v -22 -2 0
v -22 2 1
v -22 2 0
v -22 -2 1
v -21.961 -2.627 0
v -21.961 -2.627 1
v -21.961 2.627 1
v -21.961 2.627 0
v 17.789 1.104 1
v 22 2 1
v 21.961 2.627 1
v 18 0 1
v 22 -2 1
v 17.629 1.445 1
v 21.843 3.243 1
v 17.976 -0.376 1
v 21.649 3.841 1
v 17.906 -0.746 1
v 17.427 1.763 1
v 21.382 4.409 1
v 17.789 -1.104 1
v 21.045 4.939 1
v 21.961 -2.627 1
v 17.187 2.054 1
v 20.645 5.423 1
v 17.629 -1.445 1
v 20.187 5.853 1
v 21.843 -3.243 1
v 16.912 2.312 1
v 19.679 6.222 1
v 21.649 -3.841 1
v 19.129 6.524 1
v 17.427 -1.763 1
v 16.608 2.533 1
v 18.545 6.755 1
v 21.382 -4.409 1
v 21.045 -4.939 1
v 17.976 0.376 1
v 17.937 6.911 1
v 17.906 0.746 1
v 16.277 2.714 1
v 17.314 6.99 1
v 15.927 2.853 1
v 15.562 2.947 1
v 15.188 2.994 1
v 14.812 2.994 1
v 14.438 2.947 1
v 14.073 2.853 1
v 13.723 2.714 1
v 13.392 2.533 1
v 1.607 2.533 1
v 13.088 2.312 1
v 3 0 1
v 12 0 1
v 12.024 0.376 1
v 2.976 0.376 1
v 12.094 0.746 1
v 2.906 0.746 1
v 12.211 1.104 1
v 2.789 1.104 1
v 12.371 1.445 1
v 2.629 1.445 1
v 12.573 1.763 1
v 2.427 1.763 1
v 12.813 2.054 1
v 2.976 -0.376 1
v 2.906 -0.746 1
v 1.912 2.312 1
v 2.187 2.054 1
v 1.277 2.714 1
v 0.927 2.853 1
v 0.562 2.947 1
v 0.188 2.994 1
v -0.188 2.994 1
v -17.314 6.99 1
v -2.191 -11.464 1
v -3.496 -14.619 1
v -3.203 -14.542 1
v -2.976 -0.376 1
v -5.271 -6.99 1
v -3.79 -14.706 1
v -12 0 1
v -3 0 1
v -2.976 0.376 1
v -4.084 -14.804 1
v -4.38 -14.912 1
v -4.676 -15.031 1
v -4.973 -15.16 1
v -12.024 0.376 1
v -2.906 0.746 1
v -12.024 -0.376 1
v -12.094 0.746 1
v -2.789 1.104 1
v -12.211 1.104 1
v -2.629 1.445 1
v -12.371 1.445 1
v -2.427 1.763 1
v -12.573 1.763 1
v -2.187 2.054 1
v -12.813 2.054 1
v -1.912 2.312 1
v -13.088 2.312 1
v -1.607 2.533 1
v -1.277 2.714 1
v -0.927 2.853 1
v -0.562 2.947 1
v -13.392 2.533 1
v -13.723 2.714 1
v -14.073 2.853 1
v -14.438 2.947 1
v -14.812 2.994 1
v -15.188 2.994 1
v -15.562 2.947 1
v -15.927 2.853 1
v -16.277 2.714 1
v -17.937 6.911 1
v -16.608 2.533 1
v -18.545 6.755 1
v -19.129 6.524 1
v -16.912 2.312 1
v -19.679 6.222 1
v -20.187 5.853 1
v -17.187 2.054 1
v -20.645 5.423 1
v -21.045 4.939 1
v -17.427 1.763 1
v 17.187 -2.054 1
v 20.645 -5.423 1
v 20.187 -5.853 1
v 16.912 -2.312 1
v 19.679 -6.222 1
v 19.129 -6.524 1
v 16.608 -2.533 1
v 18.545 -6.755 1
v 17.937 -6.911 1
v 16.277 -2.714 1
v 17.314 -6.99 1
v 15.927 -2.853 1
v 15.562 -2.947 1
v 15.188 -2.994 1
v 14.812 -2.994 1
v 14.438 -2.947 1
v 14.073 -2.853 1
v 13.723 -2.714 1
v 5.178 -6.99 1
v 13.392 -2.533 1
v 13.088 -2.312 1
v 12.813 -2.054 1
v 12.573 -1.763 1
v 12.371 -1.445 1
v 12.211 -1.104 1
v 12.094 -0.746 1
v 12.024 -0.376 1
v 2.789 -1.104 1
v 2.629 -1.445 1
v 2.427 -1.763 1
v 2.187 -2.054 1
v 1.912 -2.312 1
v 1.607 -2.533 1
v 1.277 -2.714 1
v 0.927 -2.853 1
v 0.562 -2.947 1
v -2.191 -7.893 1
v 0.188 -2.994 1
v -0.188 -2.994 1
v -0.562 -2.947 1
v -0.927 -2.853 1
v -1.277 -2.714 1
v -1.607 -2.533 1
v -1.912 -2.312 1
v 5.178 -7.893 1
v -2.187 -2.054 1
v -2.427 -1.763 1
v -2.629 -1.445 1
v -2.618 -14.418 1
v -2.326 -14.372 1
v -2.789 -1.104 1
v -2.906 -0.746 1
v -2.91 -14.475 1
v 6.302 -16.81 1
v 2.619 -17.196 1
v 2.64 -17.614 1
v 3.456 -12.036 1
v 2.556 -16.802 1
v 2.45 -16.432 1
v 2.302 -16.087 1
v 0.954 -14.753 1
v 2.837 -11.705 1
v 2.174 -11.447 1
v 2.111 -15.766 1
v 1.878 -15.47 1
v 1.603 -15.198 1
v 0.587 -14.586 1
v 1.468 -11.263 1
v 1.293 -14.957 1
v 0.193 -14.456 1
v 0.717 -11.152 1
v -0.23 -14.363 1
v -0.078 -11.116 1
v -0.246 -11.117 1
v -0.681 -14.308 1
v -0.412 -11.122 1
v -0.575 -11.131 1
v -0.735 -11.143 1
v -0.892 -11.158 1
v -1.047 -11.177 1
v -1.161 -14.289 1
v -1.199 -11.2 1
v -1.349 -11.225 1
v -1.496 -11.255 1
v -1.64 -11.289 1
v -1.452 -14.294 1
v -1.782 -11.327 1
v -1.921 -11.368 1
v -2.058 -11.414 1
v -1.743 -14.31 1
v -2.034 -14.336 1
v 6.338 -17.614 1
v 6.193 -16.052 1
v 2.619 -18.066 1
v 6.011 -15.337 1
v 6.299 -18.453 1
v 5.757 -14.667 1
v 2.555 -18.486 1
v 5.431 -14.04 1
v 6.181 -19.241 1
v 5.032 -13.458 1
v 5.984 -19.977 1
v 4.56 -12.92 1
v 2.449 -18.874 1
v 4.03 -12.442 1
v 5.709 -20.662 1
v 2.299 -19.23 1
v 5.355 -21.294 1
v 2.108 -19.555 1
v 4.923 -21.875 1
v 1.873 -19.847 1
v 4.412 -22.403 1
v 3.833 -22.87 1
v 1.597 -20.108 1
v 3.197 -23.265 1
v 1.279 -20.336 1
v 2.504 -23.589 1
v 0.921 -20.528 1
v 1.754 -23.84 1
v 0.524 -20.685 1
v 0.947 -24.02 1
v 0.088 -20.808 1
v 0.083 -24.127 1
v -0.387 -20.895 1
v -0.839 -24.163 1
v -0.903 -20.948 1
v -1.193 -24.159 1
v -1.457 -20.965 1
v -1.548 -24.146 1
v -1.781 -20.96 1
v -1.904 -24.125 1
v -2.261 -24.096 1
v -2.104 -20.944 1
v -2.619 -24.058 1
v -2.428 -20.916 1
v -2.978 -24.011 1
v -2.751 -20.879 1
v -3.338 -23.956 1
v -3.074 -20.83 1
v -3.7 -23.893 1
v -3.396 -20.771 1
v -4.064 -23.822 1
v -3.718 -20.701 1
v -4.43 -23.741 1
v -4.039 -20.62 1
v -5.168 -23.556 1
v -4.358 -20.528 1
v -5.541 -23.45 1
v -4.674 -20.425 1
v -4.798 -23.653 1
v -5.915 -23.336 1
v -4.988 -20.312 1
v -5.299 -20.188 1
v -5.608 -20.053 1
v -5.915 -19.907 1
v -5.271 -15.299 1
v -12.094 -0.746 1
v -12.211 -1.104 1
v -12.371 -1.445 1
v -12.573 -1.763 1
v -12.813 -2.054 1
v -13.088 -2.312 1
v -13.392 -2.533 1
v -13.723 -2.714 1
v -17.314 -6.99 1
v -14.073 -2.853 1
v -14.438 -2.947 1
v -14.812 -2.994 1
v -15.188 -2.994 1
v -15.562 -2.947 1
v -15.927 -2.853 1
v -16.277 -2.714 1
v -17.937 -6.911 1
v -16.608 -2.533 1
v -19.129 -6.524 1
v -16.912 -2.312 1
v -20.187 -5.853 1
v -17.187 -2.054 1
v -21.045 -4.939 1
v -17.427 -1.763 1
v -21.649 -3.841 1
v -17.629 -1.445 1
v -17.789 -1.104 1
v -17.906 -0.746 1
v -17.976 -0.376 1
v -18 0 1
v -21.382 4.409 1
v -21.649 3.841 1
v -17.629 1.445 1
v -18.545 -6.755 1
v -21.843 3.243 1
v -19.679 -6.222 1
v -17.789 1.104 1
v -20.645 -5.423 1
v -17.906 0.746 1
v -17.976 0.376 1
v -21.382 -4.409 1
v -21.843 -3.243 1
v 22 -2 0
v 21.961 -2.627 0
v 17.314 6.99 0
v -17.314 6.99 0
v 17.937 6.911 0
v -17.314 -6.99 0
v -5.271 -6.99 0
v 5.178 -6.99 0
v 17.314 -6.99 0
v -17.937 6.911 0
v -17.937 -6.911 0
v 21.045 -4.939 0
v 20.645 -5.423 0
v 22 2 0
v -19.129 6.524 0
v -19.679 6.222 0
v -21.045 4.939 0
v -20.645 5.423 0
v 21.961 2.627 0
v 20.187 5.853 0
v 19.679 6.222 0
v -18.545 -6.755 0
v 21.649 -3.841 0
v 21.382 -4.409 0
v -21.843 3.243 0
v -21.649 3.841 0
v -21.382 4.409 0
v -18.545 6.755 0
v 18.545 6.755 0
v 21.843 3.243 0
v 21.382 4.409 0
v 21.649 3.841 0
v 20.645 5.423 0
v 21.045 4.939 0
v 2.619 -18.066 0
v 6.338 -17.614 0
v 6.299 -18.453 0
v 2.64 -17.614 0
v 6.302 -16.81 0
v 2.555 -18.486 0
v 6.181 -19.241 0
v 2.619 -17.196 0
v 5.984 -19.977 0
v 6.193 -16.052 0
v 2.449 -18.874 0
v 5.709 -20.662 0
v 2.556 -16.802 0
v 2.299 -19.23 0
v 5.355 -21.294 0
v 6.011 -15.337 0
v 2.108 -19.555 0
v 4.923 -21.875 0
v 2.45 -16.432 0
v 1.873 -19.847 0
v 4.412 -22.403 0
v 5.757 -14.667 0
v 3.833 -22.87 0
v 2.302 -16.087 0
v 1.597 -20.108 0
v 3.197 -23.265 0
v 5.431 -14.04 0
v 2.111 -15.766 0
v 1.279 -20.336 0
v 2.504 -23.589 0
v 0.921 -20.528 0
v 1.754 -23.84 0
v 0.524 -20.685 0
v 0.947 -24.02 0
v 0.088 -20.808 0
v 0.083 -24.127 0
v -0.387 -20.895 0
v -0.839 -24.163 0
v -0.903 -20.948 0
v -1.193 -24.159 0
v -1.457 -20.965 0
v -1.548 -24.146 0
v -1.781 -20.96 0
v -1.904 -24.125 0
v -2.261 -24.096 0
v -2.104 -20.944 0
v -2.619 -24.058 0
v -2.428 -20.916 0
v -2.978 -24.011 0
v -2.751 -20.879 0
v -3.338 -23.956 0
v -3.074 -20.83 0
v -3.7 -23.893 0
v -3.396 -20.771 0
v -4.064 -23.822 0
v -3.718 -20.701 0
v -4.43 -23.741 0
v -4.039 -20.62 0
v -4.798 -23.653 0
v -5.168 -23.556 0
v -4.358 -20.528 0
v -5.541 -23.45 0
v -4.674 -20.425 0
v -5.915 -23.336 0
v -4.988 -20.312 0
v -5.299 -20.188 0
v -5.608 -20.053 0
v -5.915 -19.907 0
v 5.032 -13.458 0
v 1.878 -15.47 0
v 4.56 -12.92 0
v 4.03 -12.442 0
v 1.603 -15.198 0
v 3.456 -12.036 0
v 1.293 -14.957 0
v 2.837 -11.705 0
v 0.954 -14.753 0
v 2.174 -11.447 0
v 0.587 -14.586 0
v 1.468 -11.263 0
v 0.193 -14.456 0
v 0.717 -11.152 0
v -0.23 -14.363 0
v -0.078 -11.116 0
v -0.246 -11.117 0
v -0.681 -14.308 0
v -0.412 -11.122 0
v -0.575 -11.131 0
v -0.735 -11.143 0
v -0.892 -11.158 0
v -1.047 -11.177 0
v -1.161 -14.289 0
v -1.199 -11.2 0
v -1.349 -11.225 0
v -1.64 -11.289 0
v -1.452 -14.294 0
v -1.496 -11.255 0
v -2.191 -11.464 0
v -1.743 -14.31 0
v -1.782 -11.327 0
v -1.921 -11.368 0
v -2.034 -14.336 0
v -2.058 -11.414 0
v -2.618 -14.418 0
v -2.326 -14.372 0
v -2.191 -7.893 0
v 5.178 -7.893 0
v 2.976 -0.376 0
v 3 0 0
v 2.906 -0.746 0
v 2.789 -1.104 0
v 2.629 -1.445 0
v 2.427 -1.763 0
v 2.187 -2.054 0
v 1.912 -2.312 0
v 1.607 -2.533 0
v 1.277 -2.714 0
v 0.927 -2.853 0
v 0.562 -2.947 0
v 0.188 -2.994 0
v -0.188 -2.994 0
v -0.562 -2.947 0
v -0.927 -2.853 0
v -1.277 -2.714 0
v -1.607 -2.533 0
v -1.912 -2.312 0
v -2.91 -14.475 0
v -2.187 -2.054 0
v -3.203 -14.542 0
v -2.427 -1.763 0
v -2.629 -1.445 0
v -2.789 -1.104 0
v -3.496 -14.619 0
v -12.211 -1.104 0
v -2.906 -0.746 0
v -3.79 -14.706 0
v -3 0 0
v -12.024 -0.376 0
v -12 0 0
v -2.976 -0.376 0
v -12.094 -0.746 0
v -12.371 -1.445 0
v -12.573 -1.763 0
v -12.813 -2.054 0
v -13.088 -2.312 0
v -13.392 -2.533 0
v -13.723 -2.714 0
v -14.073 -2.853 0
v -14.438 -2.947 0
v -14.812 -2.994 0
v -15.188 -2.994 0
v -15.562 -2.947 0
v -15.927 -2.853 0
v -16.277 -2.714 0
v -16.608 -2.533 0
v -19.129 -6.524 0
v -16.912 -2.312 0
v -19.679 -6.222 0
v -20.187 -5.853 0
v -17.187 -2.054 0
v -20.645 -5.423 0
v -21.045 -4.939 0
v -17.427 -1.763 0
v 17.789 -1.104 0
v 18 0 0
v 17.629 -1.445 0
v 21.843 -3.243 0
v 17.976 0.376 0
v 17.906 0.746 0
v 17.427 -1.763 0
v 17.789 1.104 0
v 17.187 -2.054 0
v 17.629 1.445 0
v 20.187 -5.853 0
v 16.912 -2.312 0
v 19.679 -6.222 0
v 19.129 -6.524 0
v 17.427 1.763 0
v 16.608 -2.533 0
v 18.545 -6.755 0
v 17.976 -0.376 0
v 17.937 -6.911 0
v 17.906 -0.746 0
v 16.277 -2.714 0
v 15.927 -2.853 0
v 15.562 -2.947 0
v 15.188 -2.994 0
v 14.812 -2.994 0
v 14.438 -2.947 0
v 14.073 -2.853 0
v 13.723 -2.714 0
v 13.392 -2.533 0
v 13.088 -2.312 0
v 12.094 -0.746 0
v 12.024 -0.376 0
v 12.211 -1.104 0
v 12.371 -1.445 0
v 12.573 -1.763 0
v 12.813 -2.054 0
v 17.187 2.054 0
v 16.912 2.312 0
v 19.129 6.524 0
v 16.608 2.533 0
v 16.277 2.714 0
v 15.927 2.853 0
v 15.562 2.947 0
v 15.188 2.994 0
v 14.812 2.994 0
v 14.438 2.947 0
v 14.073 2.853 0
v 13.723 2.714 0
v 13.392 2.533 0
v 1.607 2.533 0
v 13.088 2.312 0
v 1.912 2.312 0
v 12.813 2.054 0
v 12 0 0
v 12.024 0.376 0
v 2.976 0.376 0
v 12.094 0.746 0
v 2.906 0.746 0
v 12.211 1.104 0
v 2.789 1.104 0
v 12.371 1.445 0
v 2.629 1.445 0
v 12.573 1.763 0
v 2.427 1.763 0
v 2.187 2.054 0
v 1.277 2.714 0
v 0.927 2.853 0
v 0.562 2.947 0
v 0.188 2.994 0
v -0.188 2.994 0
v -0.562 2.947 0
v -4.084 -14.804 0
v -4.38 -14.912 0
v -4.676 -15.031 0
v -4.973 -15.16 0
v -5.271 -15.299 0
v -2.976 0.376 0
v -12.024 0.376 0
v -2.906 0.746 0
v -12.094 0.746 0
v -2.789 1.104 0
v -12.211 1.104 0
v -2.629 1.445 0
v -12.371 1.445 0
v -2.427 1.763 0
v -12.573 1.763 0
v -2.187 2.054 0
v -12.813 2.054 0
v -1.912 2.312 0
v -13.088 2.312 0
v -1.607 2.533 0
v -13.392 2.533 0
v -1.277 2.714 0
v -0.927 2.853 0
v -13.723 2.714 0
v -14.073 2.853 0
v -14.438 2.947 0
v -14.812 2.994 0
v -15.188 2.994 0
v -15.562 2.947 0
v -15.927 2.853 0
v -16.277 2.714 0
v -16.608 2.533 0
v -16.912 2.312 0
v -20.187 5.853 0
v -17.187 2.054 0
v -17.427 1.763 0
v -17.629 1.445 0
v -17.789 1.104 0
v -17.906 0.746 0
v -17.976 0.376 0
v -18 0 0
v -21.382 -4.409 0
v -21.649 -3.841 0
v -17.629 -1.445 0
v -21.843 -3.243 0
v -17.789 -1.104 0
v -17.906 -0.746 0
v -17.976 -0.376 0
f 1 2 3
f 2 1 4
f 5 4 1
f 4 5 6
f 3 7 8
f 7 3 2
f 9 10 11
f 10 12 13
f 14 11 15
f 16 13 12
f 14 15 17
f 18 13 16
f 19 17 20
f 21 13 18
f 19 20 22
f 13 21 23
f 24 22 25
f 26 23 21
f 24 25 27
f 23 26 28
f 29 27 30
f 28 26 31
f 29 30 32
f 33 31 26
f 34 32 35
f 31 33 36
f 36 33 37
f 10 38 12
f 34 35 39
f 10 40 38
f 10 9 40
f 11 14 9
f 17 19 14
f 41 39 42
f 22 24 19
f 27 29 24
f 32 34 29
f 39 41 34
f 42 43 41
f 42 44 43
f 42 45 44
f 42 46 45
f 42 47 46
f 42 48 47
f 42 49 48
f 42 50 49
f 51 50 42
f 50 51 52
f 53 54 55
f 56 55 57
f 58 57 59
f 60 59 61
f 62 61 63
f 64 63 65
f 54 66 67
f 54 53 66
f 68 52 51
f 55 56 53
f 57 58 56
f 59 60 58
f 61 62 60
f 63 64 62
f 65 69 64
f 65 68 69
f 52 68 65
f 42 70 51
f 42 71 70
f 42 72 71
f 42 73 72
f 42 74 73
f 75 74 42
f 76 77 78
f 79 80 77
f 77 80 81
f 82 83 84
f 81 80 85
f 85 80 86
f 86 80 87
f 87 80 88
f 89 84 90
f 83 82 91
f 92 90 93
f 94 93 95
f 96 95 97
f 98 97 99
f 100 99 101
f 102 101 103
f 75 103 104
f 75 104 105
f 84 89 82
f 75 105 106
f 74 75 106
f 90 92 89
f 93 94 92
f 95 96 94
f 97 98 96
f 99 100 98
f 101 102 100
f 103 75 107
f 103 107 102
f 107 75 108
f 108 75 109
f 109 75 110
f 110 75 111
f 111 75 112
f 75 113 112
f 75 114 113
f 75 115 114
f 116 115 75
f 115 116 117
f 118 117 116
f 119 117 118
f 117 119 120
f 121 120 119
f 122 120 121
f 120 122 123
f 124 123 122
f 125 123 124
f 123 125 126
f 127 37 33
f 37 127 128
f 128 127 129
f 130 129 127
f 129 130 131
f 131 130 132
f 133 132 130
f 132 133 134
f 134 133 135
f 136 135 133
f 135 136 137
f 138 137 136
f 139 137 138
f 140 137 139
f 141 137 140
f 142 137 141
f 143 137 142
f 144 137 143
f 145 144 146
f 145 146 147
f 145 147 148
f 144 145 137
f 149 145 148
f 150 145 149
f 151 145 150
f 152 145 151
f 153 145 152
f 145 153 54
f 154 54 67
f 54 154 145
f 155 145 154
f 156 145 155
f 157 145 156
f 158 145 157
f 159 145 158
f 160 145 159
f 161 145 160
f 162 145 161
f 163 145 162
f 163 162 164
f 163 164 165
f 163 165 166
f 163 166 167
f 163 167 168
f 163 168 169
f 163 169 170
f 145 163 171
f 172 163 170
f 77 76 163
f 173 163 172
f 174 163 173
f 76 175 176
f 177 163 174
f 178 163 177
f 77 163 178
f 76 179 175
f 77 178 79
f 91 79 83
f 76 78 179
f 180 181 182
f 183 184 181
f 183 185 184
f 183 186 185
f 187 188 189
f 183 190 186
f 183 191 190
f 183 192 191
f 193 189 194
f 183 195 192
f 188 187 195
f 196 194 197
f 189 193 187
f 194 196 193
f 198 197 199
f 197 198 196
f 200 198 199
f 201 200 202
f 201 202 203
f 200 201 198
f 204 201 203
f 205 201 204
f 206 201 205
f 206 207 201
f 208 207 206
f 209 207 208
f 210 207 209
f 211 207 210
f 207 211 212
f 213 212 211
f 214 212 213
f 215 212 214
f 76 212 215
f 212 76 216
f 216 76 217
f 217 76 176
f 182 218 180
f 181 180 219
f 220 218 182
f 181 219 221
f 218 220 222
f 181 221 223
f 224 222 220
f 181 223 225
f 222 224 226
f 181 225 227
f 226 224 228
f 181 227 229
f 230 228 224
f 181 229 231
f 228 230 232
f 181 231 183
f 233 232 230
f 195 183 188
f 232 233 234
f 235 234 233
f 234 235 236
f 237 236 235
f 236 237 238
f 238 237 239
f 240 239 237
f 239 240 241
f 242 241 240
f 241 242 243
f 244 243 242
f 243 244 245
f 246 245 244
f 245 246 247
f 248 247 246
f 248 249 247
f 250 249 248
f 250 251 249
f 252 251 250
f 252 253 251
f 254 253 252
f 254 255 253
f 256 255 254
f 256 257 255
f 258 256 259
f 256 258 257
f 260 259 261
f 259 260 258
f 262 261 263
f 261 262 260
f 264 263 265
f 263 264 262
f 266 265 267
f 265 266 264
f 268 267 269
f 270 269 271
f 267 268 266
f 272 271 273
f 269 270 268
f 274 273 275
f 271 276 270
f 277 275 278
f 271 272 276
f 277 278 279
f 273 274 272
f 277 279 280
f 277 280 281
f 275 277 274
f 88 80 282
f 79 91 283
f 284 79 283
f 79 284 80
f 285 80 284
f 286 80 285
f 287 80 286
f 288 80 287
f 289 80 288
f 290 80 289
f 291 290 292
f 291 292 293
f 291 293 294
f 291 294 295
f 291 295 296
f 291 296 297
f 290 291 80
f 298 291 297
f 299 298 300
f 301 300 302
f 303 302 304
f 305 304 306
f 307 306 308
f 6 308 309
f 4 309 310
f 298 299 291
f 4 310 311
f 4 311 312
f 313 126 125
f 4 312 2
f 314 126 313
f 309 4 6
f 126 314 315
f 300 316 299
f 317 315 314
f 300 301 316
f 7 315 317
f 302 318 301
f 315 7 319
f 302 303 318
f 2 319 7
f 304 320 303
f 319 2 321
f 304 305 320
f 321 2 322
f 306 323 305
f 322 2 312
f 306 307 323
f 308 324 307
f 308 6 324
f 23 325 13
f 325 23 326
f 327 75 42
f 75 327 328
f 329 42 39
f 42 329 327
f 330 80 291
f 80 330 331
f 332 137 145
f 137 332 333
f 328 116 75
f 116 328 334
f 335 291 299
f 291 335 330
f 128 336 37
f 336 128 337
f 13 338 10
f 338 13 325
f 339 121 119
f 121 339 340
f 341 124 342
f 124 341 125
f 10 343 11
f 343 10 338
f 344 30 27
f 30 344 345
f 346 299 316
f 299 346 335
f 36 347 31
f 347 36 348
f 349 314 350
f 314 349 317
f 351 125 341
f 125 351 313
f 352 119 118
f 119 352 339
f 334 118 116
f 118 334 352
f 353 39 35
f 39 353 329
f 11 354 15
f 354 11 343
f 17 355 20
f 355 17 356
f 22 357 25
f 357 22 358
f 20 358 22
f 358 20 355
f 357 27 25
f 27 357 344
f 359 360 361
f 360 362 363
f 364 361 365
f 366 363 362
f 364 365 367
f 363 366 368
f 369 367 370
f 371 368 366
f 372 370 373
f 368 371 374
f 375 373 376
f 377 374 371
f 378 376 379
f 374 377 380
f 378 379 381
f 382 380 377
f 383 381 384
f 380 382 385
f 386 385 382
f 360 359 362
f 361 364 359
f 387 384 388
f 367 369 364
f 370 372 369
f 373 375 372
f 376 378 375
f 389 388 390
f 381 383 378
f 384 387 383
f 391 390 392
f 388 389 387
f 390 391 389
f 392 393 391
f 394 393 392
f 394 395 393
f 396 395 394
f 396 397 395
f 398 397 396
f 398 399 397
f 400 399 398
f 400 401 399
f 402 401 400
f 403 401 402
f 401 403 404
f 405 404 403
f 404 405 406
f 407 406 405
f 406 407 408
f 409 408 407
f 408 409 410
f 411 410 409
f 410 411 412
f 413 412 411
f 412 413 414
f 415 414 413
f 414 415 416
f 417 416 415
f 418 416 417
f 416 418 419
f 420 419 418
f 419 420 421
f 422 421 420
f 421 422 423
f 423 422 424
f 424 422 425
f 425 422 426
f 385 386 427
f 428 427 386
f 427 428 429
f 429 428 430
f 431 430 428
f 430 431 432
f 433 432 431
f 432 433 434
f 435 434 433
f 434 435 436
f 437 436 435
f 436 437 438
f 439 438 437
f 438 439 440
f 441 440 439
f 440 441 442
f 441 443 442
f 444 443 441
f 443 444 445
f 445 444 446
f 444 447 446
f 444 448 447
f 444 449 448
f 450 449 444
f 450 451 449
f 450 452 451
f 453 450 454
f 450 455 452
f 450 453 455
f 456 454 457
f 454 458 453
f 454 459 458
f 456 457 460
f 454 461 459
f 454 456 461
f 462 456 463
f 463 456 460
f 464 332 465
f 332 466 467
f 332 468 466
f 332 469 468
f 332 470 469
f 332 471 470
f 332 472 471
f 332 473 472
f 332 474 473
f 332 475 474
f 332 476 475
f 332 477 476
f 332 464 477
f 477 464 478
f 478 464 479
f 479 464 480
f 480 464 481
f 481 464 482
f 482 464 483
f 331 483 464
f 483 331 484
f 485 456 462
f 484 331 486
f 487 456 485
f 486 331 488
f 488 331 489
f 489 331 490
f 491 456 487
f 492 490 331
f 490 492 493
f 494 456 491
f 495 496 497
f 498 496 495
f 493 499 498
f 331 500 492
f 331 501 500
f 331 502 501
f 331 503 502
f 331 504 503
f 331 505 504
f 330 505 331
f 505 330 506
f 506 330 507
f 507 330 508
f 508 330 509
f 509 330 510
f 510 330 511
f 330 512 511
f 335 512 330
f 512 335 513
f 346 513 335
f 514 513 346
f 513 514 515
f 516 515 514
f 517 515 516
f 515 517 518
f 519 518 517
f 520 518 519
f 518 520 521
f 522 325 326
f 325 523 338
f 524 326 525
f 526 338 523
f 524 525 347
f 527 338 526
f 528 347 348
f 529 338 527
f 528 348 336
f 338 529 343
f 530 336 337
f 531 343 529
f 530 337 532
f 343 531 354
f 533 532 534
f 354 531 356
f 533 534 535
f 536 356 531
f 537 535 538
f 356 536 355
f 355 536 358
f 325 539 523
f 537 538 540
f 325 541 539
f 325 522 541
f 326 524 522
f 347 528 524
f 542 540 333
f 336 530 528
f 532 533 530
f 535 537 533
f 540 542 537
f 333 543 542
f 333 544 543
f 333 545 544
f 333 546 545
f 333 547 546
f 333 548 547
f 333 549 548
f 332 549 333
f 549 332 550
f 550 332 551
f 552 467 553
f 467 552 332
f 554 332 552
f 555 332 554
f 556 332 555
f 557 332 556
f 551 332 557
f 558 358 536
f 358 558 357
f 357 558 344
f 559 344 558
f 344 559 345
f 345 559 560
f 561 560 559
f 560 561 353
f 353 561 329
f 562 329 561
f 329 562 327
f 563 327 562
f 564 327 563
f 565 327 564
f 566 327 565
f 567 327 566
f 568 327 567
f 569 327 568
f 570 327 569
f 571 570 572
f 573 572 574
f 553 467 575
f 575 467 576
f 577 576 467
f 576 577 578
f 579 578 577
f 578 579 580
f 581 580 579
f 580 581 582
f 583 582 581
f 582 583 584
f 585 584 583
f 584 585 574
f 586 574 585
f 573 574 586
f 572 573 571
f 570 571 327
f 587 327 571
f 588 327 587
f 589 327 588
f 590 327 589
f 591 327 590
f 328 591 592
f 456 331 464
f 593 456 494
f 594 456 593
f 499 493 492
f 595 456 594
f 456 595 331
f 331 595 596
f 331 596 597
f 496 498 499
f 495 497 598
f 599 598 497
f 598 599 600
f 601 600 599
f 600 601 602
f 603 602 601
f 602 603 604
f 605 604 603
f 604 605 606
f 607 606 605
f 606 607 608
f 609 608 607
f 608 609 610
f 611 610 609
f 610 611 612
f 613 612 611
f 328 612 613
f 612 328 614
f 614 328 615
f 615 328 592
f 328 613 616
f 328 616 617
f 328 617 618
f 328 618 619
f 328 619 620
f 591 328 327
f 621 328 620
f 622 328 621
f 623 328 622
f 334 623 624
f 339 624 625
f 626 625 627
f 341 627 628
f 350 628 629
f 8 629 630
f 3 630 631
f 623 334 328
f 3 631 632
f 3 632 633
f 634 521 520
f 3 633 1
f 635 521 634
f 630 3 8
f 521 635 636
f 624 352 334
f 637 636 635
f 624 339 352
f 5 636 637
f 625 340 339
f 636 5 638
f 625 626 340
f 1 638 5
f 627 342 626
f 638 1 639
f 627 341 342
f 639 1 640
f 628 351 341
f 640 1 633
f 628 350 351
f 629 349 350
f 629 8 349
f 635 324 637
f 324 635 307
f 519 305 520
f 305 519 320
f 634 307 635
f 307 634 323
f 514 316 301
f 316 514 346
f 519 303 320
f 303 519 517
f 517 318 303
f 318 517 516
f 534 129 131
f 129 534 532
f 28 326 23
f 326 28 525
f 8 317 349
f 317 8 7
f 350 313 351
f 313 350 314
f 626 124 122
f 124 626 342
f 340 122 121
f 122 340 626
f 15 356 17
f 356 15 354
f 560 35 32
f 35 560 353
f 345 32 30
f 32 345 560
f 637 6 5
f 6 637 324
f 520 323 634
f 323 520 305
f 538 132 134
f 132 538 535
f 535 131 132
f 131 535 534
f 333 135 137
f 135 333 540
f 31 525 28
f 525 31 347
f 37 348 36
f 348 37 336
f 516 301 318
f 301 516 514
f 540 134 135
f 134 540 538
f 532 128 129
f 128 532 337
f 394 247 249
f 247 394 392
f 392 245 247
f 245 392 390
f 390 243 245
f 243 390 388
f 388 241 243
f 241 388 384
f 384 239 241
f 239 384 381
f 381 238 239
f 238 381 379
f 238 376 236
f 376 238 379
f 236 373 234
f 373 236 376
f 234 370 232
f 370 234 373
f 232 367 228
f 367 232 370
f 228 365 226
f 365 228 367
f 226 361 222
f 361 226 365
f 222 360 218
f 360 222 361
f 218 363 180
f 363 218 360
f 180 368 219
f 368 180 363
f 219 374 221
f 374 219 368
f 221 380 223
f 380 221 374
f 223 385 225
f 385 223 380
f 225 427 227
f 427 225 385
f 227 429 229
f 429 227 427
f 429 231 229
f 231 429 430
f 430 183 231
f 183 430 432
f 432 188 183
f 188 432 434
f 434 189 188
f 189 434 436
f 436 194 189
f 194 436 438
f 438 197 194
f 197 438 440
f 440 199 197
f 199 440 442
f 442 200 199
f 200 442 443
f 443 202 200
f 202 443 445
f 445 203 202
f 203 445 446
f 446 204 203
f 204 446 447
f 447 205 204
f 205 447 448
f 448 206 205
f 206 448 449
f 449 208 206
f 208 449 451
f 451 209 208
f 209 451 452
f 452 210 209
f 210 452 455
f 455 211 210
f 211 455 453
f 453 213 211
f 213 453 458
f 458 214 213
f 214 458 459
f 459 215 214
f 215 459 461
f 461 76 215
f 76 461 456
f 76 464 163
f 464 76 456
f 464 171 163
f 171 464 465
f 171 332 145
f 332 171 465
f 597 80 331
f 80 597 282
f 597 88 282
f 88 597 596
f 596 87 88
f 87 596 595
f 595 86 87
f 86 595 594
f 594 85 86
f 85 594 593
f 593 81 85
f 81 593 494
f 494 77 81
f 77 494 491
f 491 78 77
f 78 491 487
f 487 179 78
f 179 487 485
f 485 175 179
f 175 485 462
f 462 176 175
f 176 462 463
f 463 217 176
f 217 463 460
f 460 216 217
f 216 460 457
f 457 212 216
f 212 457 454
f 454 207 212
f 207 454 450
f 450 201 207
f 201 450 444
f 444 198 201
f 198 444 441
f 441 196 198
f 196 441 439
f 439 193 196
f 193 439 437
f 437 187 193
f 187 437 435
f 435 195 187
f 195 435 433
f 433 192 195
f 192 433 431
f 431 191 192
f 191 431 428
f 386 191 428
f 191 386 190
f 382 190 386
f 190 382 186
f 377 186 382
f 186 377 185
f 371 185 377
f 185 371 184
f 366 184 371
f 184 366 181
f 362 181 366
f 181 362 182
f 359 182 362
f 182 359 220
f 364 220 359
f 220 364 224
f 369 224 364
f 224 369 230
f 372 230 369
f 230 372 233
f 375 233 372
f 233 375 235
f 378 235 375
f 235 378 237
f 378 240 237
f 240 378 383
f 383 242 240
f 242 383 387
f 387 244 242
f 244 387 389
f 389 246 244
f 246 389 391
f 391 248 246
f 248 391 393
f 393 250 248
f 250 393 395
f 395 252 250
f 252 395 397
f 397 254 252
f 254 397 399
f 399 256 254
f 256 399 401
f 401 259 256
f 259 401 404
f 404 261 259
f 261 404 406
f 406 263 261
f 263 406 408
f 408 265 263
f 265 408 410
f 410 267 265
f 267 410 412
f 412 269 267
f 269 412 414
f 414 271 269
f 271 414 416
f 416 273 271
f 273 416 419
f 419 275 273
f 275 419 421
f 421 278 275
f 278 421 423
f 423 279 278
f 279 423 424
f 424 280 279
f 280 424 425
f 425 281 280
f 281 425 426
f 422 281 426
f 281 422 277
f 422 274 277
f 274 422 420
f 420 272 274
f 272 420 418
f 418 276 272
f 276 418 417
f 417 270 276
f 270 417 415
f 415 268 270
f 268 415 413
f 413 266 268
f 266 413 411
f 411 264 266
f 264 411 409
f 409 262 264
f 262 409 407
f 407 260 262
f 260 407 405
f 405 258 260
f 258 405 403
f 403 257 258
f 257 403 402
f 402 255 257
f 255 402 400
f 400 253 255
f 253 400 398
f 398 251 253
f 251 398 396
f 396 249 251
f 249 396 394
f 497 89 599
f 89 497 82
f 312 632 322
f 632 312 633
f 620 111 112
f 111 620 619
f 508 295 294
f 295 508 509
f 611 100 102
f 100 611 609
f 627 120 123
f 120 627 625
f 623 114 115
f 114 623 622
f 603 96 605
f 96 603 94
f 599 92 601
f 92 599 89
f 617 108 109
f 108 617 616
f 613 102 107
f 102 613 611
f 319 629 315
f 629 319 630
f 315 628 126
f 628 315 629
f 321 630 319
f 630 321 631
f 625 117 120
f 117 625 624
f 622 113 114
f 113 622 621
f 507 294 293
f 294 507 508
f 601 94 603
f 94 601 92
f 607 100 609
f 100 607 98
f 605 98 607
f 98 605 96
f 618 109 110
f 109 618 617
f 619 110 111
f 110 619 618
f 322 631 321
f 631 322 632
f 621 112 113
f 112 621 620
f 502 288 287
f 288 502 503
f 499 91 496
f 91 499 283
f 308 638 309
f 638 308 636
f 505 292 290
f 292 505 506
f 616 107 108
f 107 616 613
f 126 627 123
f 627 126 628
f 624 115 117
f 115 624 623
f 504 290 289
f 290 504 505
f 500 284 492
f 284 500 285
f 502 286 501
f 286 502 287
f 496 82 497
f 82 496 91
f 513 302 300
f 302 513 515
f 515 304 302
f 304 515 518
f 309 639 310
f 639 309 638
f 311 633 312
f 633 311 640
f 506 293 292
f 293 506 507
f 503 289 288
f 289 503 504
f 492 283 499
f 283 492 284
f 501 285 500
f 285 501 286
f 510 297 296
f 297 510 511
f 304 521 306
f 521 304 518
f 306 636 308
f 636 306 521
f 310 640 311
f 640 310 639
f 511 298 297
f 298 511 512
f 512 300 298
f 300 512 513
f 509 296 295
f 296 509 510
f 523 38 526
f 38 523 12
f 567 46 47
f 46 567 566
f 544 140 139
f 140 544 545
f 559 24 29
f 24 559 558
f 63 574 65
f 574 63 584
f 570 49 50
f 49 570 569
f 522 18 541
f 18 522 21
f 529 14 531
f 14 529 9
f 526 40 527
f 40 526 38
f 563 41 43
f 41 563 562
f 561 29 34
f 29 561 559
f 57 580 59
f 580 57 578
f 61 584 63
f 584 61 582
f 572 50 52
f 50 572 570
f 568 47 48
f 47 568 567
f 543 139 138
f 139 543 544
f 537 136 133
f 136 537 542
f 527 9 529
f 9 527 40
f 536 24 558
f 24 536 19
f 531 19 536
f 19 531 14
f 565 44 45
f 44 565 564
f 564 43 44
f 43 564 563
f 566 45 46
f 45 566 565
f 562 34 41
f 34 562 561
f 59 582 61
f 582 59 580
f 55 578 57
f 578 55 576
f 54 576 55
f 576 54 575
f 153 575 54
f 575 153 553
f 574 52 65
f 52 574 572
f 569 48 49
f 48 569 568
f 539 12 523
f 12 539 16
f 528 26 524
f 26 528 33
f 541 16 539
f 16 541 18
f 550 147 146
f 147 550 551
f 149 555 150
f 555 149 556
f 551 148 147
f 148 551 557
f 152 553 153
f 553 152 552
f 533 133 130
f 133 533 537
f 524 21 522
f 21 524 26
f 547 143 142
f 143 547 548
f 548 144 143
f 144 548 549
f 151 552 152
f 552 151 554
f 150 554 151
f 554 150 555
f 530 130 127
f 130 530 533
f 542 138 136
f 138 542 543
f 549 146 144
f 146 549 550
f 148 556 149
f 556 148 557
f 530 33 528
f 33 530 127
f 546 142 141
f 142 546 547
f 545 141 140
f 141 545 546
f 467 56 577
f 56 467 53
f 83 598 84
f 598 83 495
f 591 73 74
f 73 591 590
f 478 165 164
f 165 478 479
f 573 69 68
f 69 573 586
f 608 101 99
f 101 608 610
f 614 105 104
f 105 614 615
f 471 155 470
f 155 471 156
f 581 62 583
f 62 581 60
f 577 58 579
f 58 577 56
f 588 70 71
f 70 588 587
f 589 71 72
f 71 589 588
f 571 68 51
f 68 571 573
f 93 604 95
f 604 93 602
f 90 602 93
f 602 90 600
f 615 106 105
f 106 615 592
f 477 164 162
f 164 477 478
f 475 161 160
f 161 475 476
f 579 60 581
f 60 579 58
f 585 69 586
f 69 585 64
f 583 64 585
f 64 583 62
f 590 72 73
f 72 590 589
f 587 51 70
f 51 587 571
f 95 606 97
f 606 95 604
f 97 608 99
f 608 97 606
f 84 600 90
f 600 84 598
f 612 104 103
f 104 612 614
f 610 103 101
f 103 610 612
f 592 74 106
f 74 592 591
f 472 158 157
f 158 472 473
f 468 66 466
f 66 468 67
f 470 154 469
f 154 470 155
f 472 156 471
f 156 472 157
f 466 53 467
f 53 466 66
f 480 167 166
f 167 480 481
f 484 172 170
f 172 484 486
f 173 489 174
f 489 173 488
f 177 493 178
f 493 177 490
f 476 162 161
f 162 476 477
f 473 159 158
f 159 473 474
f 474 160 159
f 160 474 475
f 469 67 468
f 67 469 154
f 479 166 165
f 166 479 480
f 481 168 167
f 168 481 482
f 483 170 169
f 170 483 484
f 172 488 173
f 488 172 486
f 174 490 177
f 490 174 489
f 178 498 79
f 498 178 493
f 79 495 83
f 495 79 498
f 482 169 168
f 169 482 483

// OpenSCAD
$fn = 50;


difference() {
	union() {
		translate(v = [0, 0, 0]) {
			rotate(a = [0, 0, 0]) {
				hull() {
					translate(v = [-17.0000000000, 2.0000000000, 0]) {
						rotate(a = [0, 0, 0]) {
							translate(v = [0, 0, 0]) {
								rotate(a = [0, 0, 0]) {
									cylinder(h = 1, r = 5);
								}
							}
						}
					}
					translate(v = [17.0000000000, 2.0000000000, 0]) {
						rotate(a = [0, 0, 0]) {
							translate(v = [0, 0, 0]) {
								rotate(a = [0, 0, 0]) {
									cylinder(h = 1, r = 5);
								}
							}
						}
					}
					translate(v = [-17.0000000000, -2.0000000000, 0]) {
						rotate(a = [0, 0, 0]) {
							translate(v = [0, 0, 0]) {
								rotate(a = [0, 0, 0]) {
									cylinder(h = 1, r = 5);
								}
							}
						}
					}
					translate(v = [17.0000000000, -2.0000000000, 0]) {
						rotate(a = [0, 0, 0]) {
							translate(v = [0, 0, 0]) {
								rotate(a = [0, 0, 0]) {
									cylinder(h = 1, r = 5);
								}
							}
						}
					}
				}
			}
		}
		translate(v = [0, -5, 0]) {
			rotate(a = [0, 0, 0]) {
				linear_extrude(height = 1) {
					text(font = "DejaVu Sans Mono:style=Bold", halign = "center", size = 19.0000000000, text = "5", valign = "top");
				}
			}
		}
	}
	union() {
		translate(v = [-15.0000000000, 0.0000000000, -125.0000000000]) {
			rotate(a = [0, 0, 0]) {
				cylinder(h = 250, r = 3.0000000000);
			}
		}
		translate(v = [15.0000000000, 0.0000000000, -125.0000000000]) {
			rotate(a = [0, 0, 0]) {
				cylinder(h = 250, r = 3.0000000000);
			}
		}
		translate(v = [15.0000000000, 0.0000000000, -125.0000000000]) {
			rotate(a = [0, 0, 0]) {
				cylinder(h = 250, r = 3.0000000000);
			}
		}
		translate(v = [0, 0, -125.0000000000]) {
			rotate(a = [0, 0, 0]) {
				cylinder(h = 250, r = 3.0000000000);
			}
		}
	}
}
